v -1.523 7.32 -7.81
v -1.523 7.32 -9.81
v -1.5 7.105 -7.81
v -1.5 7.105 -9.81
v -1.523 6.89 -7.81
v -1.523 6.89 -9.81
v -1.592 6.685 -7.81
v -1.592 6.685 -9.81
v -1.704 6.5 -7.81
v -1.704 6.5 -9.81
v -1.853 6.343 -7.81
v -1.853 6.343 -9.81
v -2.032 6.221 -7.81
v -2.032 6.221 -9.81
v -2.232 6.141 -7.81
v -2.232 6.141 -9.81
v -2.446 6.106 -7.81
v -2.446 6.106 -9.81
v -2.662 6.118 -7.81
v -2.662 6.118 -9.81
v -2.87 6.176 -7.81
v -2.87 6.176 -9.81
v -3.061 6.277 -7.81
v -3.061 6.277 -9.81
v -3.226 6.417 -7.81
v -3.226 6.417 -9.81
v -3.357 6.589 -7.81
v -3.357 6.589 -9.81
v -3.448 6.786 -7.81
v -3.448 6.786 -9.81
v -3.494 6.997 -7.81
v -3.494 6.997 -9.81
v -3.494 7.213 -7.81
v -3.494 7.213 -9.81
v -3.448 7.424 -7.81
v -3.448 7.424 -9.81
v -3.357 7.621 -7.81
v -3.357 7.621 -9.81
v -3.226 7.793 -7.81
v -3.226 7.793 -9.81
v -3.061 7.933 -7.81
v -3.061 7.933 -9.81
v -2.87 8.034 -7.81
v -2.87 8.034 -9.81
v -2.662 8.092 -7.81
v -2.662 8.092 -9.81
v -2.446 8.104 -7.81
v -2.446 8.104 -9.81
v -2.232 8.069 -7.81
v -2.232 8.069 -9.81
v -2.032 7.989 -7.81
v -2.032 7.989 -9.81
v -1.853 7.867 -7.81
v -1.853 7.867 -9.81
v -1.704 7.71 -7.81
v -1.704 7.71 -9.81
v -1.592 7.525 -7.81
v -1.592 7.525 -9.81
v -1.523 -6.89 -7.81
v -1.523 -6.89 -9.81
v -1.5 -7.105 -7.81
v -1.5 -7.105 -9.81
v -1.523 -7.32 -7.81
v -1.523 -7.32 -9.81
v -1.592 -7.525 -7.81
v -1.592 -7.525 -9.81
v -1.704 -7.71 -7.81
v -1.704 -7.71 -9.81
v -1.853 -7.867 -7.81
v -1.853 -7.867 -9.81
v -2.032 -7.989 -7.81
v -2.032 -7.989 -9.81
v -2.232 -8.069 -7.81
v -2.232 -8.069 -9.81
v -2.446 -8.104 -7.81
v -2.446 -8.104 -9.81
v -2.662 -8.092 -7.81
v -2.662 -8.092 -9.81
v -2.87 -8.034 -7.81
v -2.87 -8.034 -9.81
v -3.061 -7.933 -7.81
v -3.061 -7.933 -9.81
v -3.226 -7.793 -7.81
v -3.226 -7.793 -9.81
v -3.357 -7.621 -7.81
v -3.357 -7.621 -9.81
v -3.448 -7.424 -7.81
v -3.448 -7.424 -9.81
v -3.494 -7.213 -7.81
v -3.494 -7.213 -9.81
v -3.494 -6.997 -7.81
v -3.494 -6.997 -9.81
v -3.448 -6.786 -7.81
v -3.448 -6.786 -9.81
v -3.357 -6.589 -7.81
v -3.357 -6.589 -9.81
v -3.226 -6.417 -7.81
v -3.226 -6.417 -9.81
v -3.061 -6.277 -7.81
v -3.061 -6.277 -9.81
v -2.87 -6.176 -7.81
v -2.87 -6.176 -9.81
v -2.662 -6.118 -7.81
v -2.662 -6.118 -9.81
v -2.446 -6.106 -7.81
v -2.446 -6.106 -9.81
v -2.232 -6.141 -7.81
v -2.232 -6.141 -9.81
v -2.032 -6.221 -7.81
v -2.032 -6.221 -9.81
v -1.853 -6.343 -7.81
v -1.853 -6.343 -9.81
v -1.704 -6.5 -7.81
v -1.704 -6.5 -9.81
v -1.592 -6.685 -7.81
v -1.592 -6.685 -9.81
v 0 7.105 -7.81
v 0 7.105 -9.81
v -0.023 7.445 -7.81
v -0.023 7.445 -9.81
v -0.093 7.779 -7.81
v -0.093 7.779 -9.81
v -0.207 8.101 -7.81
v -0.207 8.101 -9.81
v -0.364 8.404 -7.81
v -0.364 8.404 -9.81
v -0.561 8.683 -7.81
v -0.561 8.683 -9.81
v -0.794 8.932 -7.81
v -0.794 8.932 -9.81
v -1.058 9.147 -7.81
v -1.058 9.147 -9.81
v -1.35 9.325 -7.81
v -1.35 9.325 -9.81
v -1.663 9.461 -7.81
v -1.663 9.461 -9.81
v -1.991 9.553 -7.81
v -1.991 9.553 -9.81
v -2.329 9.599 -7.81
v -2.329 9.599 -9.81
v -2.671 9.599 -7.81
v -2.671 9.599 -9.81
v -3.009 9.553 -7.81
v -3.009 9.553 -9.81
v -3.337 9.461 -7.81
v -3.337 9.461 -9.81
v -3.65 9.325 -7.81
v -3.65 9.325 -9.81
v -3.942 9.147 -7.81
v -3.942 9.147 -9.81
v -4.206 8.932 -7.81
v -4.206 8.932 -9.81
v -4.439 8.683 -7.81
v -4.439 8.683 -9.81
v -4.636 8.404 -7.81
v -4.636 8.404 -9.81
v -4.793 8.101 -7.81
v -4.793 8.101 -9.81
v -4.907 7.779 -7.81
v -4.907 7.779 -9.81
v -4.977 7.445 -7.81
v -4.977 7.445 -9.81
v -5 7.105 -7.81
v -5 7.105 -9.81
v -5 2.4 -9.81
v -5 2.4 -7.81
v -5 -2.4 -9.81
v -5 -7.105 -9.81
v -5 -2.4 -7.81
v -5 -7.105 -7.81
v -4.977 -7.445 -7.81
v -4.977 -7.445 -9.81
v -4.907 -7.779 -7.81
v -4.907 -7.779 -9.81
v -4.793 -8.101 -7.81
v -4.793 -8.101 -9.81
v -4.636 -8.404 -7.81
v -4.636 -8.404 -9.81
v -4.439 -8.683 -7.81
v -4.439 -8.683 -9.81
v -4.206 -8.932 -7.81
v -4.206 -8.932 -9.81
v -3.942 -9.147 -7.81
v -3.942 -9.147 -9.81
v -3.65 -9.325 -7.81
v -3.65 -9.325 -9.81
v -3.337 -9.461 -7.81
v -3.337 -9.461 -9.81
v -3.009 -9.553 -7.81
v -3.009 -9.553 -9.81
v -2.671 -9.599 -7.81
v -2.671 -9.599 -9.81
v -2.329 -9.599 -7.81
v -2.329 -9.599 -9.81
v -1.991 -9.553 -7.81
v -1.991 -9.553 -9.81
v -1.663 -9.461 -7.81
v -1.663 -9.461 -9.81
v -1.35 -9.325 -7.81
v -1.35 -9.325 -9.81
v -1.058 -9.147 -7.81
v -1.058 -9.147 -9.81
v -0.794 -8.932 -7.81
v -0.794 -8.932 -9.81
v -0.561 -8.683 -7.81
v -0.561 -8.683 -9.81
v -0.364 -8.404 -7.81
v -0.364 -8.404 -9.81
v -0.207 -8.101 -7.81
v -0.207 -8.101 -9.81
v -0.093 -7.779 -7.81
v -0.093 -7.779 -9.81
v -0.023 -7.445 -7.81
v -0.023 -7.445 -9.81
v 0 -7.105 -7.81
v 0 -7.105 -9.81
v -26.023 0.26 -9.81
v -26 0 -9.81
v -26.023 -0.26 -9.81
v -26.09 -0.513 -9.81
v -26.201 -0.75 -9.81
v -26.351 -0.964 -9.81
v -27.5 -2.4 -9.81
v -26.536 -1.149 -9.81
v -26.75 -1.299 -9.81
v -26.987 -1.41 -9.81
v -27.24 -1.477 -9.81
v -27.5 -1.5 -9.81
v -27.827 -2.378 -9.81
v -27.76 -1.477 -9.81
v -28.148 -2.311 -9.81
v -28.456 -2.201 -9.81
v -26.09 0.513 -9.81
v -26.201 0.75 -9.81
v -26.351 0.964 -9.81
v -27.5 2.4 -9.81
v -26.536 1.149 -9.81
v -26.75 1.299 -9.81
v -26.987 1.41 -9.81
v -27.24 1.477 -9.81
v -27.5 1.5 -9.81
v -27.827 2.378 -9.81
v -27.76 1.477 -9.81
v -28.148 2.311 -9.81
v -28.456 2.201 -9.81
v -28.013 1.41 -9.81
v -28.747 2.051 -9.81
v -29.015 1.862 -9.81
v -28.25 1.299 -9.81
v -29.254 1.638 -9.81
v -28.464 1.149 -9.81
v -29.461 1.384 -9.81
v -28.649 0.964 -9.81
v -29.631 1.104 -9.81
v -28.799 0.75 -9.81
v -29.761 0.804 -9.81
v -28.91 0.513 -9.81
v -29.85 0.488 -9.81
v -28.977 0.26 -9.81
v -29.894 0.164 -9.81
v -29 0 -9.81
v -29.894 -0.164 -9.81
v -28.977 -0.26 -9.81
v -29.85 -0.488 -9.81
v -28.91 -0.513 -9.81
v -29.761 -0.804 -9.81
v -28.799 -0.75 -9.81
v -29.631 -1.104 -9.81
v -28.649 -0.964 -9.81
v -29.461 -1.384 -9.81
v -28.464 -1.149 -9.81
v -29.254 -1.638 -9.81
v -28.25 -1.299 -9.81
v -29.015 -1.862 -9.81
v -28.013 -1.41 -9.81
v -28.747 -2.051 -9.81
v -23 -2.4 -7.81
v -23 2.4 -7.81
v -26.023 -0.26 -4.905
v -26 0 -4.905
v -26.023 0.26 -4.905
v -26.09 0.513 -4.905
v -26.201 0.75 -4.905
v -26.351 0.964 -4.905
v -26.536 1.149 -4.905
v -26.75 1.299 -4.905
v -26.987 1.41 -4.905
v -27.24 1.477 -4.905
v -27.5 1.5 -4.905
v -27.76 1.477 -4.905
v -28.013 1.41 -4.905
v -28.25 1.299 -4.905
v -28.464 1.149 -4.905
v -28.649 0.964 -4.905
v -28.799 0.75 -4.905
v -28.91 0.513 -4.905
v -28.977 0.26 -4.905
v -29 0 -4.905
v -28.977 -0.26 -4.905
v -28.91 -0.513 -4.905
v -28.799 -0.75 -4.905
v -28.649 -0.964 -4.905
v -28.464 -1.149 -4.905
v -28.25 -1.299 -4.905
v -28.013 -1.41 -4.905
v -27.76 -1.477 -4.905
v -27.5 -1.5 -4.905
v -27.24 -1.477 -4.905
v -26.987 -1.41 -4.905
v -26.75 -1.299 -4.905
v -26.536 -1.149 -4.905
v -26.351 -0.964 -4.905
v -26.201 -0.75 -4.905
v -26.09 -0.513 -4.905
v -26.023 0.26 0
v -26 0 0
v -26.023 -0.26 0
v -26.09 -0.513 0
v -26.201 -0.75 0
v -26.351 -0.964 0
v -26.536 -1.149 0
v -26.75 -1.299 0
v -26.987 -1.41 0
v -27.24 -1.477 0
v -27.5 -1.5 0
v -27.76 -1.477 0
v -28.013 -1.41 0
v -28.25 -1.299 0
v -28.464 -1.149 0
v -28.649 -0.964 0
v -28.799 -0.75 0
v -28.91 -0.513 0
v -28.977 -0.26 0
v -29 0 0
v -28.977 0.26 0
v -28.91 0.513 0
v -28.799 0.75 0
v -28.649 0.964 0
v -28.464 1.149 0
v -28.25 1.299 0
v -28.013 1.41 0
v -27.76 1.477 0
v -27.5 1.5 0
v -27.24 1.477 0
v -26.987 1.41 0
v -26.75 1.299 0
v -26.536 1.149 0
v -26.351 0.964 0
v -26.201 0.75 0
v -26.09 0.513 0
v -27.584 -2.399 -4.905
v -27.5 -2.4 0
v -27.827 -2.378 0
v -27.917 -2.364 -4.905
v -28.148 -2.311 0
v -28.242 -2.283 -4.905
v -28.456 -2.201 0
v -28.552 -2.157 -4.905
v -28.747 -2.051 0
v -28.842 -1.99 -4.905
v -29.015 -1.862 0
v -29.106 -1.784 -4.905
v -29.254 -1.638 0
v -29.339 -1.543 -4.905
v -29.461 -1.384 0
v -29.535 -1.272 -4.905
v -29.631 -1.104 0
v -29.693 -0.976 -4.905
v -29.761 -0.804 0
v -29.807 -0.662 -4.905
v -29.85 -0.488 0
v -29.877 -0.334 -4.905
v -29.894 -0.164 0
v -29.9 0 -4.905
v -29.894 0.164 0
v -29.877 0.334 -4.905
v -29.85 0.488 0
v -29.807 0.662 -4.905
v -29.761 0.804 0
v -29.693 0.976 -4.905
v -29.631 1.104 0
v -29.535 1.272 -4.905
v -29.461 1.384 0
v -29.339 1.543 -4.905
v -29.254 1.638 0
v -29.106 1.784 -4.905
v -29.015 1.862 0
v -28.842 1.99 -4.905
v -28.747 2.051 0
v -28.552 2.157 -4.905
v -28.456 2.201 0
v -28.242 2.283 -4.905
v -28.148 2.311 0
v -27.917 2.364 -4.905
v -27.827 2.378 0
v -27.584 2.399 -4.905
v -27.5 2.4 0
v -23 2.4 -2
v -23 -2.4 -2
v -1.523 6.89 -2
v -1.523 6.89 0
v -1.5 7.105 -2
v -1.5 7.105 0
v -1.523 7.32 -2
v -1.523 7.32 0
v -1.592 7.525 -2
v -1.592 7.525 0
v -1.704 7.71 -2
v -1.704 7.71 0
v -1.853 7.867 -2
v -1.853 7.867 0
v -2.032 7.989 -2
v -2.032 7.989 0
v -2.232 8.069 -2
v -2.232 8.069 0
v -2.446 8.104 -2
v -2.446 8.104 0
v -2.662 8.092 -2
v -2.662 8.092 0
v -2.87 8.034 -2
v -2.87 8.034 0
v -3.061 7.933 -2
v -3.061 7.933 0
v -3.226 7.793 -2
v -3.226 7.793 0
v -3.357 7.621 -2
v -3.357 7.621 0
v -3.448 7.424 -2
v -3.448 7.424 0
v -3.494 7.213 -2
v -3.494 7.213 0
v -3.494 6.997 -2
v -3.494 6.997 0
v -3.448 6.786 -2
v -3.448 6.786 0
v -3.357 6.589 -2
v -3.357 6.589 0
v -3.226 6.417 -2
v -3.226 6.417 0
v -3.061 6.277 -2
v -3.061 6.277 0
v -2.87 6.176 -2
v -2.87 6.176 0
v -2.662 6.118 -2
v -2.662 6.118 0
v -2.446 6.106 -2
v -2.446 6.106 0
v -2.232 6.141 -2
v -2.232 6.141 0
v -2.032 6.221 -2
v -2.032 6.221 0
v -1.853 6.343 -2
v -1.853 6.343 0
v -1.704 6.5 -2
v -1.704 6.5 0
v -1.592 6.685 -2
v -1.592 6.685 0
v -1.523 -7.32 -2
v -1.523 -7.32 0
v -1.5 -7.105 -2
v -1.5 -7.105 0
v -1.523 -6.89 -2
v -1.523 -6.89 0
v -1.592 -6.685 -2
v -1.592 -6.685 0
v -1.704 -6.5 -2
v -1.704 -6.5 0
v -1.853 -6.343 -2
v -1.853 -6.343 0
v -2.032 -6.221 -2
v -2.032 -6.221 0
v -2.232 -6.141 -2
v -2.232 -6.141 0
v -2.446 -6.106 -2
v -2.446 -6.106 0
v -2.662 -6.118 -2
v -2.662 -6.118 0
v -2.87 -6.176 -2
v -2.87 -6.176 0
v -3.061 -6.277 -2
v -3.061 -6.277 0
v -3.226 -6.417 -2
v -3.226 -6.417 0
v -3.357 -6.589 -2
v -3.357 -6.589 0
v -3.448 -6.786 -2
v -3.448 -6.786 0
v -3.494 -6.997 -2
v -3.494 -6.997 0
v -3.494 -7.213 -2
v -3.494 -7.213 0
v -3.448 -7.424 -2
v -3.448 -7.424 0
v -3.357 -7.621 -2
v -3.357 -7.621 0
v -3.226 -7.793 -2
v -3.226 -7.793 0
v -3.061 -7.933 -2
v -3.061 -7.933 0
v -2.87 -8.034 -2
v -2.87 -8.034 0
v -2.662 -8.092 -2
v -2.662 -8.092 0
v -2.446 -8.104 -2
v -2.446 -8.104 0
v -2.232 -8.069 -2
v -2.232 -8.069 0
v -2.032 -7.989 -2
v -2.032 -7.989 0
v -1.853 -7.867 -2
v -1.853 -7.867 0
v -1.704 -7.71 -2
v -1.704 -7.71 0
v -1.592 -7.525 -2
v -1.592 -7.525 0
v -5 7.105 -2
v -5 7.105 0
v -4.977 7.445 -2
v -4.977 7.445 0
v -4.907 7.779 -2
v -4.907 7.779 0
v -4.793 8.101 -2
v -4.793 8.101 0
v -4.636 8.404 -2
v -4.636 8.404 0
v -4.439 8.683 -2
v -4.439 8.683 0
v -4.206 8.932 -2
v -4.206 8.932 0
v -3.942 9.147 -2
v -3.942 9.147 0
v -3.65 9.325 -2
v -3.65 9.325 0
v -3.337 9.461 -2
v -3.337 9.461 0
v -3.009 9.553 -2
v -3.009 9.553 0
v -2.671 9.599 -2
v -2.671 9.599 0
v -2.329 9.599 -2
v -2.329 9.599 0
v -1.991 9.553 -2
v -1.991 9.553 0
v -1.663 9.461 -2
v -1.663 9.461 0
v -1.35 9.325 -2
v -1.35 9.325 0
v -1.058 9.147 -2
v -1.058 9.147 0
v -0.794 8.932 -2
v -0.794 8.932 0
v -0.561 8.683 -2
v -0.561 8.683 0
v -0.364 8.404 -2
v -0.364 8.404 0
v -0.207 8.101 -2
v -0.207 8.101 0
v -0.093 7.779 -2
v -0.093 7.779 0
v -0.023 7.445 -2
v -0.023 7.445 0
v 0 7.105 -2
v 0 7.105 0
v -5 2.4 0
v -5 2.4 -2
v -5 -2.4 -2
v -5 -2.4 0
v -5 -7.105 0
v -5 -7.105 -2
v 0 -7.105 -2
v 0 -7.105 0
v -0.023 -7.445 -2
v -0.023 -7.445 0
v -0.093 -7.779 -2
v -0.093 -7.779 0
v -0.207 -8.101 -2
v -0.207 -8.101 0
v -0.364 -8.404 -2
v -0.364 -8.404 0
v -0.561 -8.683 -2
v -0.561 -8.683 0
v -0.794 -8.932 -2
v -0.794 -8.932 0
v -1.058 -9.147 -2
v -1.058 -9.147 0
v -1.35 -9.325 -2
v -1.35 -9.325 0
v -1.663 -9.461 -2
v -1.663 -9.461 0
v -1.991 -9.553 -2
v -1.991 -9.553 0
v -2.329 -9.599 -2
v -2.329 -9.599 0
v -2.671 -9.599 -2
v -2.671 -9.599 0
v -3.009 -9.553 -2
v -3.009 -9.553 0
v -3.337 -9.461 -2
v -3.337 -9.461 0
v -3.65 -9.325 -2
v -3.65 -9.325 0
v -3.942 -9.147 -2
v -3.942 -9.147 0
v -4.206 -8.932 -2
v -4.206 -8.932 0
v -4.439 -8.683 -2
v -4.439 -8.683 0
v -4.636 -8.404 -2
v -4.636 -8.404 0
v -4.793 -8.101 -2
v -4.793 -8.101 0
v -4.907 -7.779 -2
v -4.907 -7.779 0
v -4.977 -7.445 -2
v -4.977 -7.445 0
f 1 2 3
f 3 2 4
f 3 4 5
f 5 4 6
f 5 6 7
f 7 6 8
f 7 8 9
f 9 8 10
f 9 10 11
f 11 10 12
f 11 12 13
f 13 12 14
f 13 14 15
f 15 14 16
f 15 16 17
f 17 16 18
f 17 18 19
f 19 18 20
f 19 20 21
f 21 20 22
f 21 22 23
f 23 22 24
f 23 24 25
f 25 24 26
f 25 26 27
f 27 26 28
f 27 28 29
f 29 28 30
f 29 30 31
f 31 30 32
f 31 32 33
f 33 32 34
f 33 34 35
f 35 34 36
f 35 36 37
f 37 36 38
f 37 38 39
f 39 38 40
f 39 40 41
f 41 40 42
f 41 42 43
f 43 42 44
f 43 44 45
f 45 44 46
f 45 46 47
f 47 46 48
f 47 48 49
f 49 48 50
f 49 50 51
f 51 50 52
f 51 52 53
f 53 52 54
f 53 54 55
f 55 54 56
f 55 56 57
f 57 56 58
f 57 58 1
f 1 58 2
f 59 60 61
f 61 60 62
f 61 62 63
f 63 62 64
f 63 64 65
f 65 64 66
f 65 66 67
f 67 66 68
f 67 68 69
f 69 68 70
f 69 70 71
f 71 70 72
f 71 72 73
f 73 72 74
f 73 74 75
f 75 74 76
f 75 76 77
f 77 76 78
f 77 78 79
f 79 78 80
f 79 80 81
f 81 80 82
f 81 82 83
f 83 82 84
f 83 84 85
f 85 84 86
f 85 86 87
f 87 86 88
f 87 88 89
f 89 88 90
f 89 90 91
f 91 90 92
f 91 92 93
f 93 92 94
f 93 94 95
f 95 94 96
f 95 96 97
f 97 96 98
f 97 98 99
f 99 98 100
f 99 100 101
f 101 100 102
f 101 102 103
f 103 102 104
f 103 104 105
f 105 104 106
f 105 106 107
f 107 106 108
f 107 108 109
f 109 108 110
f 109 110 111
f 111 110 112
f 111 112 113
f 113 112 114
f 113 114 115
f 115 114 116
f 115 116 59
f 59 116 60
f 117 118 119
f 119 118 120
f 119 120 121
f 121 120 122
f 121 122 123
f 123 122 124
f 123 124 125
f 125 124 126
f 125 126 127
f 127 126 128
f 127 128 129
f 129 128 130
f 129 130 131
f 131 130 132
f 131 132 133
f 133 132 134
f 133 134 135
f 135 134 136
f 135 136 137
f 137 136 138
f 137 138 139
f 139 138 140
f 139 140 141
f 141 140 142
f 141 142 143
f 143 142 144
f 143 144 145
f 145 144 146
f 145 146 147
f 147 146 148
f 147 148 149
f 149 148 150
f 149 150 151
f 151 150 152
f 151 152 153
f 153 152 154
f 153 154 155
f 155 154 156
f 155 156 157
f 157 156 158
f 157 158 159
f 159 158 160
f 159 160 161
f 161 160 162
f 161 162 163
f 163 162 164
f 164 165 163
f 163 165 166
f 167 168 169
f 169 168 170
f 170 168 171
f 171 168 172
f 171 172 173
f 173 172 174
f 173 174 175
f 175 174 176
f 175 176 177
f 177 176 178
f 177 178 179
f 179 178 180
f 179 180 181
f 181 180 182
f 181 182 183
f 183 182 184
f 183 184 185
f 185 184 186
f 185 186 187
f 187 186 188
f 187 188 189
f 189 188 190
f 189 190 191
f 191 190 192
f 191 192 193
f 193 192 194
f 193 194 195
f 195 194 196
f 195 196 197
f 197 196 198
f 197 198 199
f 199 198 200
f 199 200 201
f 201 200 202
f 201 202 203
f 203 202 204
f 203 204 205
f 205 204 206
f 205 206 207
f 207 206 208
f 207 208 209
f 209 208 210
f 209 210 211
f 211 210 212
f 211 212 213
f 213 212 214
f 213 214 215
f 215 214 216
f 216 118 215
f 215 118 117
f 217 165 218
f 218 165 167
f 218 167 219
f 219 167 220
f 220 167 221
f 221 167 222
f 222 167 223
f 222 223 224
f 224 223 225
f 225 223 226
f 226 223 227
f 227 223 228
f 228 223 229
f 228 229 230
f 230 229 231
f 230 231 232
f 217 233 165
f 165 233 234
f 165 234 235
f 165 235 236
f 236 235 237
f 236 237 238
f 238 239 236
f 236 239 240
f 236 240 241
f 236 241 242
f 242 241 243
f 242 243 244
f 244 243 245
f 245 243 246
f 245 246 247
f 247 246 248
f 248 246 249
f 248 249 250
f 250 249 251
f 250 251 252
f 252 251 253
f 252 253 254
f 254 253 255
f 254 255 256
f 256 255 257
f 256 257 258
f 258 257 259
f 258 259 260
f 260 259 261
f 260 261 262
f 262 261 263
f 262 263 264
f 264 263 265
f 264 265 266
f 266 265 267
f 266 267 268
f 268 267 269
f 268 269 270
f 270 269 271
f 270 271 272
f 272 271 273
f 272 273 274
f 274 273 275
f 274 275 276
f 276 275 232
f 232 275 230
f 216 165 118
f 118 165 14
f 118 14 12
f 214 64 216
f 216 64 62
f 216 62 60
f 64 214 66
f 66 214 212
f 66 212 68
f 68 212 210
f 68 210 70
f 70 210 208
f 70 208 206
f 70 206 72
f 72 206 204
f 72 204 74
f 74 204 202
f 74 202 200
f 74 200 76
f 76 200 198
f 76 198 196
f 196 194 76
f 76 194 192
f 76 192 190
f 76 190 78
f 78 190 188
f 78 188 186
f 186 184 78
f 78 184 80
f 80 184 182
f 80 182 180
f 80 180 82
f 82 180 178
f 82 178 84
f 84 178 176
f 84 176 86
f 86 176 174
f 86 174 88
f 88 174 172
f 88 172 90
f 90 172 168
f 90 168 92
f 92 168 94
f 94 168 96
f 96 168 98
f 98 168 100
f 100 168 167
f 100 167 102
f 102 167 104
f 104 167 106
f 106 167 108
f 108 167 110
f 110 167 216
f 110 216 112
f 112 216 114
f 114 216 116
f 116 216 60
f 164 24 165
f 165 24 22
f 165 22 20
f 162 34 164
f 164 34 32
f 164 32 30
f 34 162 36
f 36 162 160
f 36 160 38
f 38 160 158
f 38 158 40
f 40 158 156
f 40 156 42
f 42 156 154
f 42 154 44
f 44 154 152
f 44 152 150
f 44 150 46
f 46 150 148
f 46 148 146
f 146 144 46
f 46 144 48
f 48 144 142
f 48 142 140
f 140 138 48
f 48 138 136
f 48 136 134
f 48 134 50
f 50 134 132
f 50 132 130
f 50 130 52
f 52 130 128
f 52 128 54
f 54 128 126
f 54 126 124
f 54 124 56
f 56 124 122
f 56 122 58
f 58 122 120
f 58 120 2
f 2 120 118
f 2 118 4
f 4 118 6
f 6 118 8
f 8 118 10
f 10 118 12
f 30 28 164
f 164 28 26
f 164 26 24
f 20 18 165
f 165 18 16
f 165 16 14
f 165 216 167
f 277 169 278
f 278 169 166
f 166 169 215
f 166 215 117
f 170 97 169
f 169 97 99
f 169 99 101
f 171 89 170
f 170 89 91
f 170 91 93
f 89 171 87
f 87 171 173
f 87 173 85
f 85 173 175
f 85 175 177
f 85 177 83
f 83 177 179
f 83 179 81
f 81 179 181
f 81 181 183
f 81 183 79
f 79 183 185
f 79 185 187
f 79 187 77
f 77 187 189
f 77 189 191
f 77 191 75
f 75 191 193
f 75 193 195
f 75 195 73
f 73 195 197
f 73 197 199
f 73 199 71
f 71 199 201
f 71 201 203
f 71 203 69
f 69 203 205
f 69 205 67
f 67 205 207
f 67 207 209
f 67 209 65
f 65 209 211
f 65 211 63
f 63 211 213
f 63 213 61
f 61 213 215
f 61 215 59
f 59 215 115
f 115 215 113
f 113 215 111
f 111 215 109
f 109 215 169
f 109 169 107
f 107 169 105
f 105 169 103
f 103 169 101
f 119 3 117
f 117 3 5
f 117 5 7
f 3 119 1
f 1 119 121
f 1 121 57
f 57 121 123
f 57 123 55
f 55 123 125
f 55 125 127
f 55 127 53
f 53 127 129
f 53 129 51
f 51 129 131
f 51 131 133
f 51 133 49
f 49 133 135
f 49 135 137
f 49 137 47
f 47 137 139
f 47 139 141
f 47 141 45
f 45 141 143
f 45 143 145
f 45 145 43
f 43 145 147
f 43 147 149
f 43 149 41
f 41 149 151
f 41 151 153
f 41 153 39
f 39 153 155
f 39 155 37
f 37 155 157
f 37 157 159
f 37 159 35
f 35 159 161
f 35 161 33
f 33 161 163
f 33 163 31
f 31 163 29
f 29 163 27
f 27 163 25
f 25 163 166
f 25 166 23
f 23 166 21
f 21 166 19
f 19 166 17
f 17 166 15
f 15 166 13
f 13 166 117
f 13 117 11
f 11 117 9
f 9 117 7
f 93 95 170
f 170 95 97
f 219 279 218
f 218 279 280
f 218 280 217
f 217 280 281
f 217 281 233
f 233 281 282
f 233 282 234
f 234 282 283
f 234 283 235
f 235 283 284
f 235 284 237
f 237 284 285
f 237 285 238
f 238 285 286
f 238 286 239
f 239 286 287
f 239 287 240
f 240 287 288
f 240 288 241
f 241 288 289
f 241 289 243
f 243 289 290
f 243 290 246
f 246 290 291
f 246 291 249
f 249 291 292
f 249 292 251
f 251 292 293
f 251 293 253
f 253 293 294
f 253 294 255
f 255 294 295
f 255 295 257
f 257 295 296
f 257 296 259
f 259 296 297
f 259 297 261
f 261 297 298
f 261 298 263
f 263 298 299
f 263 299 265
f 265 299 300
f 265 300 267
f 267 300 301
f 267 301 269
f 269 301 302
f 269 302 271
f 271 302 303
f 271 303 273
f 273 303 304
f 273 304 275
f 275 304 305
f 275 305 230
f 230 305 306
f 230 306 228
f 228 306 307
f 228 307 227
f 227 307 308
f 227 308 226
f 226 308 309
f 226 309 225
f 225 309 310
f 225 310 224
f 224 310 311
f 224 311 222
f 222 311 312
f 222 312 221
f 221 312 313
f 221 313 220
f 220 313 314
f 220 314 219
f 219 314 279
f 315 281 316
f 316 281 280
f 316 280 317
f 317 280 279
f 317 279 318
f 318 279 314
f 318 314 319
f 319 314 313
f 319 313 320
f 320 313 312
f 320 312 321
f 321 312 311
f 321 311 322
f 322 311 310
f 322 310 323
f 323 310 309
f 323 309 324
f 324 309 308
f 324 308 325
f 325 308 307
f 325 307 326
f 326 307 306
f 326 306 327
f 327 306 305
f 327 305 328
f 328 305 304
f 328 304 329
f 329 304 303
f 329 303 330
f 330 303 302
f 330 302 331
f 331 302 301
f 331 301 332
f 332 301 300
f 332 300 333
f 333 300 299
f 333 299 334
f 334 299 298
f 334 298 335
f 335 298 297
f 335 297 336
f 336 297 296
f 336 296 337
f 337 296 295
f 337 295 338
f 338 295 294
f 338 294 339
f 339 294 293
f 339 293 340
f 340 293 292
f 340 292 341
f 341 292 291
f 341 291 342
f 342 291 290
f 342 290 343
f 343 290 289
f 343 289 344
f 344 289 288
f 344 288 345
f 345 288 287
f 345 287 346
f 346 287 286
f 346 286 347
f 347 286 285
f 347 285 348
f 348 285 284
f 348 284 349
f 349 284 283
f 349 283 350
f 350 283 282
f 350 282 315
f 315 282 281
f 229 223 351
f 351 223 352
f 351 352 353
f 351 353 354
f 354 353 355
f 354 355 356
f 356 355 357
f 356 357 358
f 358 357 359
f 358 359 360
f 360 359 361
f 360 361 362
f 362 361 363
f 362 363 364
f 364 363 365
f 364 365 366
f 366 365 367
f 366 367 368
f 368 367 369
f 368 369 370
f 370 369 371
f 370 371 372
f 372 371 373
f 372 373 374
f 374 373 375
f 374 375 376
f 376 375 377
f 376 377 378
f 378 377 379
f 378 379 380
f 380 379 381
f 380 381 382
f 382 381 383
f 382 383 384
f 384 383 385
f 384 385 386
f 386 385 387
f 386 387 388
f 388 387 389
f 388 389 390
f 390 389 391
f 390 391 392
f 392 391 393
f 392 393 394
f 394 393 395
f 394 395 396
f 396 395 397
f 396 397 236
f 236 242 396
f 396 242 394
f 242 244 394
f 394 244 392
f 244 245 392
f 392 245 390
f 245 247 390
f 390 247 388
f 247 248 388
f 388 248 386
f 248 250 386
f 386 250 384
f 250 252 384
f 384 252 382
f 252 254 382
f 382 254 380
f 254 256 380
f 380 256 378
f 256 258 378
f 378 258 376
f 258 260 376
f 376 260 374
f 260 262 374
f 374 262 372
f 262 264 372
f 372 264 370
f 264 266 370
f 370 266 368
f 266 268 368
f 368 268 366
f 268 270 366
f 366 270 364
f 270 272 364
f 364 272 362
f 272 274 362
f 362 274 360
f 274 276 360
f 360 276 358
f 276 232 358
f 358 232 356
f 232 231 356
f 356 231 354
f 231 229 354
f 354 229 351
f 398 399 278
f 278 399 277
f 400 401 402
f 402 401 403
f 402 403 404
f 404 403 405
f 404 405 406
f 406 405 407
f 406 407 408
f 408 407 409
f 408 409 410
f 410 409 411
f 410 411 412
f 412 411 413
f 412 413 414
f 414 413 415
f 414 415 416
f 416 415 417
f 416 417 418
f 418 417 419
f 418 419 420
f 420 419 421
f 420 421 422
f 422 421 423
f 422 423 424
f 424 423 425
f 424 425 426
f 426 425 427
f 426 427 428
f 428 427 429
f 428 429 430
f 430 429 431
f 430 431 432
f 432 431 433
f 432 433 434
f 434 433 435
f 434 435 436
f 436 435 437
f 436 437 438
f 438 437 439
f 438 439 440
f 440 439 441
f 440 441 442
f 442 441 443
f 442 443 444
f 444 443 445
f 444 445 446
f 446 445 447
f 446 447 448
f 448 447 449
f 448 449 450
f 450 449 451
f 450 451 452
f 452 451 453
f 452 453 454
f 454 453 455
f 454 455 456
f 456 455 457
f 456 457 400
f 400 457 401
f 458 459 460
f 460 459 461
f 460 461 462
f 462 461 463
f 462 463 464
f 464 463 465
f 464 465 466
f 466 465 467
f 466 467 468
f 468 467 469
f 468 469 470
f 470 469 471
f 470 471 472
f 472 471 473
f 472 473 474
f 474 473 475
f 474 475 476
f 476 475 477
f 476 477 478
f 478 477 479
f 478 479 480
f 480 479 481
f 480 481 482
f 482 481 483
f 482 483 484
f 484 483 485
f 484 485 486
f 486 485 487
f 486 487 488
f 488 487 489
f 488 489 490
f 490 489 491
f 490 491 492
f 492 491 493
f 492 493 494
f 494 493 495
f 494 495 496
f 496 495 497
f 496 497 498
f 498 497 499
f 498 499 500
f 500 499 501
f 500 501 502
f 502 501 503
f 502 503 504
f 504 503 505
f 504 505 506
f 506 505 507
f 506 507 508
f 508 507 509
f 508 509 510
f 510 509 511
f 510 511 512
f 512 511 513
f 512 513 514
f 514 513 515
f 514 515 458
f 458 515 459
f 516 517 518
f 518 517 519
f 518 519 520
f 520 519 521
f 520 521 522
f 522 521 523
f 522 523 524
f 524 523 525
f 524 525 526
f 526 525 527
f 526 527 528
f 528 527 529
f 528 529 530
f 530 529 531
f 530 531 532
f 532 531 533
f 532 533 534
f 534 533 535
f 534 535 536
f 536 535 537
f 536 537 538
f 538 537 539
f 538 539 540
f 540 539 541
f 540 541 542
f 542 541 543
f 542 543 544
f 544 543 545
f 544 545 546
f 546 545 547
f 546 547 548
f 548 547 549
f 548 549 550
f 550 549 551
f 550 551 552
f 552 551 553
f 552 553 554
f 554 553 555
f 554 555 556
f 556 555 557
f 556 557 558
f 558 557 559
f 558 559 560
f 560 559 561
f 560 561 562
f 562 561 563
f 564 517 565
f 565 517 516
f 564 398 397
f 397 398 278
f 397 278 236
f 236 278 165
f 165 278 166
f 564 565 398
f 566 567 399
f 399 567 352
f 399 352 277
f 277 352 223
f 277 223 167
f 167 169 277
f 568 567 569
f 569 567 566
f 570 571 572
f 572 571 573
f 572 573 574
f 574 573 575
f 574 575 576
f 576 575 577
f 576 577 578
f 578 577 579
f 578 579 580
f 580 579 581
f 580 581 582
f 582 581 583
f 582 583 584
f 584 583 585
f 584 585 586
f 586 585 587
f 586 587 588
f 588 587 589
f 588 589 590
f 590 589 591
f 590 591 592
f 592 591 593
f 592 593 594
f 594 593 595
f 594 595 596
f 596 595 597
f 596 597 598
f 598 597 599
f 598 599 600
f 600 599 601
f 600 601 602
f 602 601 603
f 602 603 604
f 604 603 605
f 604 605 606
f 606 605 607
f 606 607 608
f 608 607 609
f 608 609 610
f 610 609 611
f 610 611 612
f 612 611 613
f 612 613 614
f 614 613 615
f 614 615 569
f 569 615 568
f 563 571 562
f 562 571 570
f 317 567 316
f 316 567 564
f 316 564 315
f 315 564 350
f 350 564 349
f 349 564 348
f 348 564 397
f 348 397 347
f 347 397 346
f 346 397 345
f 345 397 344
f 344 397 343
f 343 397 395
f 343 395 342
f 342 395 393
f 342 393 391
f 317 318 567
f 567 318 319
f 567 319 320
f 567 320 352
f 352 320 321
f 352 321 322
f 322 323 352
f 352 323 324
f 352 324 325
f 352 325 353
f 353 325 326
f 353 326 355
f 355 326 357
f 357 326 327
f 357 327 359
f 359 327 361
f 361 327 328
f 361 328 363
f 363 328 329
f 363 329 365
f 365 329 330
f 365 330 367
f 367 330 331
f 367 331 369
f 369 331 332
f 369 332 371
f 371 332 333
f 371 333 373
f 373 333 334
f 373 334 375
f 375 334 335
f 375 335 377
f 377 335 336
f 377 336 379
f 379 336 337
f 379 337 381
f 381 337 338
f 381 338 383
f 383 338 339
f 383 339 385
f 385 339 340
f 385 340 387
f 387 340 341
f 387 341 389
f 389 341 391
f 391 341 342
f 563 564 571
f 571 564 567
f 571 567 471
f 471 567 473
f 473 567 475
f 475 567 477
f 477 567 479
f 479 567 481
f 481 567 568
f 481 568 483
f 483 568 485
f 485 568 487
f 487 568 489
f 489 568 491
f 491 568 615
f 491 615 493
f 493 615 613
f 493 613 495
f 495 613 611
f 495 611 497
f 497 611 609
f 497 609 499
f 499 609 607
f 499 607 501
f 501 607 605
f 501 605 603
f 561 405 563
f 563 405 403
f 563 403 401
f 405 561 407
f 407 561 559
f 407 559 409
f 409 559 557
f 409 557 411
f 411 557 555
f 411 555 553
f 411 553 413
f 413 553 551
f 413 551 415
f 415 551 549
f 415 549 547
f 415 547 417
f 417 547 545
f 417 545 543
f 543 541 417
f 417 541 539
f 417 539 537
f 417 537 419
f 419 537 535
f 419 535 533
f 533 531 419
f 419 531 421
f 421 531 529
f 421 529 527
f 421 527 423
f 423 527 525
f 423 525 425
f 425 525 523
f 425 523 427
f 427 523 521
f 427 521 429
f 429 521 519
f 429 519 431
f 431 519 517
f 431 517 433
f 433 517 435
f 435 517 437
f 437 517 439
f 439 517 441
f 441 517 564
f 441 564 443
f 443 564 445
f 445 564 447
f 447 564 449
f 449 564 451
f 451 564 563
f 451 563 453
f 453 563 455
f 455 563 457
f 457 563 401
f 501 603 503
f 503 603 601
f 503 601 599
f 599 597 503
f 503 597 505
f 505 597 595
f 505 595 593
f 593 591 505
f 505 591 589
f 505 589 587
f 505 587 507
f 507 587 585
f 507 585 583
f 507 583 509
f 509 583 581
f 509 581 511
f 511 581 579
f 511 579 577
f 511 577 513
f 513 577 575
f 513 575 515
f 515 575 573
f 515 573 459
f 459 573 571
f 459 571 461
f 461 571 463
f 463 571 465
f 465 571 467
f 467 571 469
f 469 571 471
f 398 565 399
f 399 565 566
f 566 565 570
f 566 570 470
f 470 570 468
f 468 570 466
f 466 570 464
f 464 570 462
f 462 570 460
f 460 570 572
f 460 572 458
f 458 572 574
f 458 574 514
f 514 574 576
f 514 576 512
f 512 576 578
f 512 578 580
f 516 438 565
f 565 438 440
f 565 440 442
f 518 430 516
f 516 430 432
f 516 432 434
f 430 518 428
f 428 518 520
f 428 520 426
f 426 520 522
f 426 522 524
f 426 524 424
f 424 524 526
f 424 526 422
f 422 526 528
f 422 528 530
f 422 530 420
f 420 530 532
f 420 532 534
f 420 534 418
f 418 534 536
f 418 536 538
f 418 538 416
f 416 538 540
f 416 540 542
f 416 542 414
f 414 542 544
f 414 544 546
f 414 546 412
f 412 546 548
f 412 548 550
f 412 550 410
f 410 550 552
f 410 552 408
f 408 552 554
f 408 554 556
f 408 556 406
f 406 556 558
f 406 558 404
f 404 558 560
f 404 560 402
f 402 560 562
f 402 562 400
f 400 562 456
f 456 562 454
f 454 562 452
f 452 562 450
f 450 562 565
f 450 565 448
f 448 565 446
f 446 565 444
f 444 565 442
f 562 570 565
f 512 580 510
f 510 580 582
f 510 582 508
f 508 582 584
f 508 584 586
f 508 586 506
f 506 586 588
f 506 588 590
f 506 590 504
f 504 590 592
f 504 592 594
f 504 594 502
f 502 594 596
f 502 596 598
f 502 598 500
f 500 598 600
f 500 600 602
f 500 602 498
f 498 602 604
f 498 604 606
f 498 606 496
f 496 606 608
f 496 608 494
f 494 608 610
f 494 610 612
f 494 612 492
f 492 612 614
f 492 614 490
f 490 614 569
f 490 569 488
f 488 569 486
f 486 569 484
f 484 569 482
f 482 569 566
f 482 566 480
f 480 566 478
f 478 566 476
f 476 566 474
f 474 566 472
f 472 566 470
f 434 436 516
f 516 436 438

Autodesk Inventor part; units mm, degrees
ref_plane "YZ Plane" through (0, 0, 0) normal (1, 0, 0) x (0, 1, 0)
ref_plane "XZ Plane" through (0, 0, 0) normal (0, 1, 0) x (-1, 0, 0)
ref_plane "XY Plane" through (0, 0, 0) normal (0, 0, 1) x (1, 0, 0)
sketch "Sketch1" plane through (0, 0, 0) normal (0, 0, 1) x (1, 0, 0)
  line L0 (0, 0) -> (0, 7.105)
  line L1 (0, 0) -> (0, -7.105)
  line L2 (0, -7.105) -> (-5, -7.105)
  line L3 (-5, -7.105) -> (-5, 7.105)
  line L4 (0, 7.105) -> (-5, 7.105)
  circle A0 centre (-2.5, -7.105) radius 2.5
  circle A1 centre (-2.5, 7.105) radius 2.5
  circle A2 centre (-2.5, -7.105) radius 1
  circle A3 centre (-2.5, 7.105) radius 1
  line L5 (-5, 0) -> (-5, 2.4)
  line L6 (-5, 2.4) -> (-25.5, 2.4)
  line L7 (-25.5, 2.4) -> (-25.5, -2.4)
  line L8 (-25.5, -2.4) -> (-5, -2.4)
  dimension "d0" = 7.105
  dimension "d1" = 7.105
  dimension "d2" = 5
  dimension "d3" = 5
  dimension "d4" = 5
  dimension "d5" = 2
  dimension "d6" = 2
  dimension "d7" = 2.4
  dimension "d8" = 20.5
  dimension "d9" = 4.8
extrude "Extrusion1" add sketch "Sketch1" against normal blind 2 contours L1 A0 L3 A1 L0 | A1 L4 A3 | L4 A3 A1 | A0 L2 A2 | L2 A2 A0 | L3 L8 L7 L6
sketch "Sketch2" plane through (0, 0, -2) normal (0, 0, -1) x (-1, 0, 0)
  line L0 (0, 7.105) -> (0, -7.105) projected
  arc A0 (0, -7.105) -> (5, -7.105) centre (2.5, -7.105) ccw projected
  line L1 (5, -7.105) -> (5, -2.4) projected
  line L2 (5, -2.4) -> (25.5, -2.4) projected
  line L3 (25.5, -2.4) -> (25.5, 2.4) projected
  line L4 (25.5, 2.4) -> (5, 2.4) projected
  line L5 (5, 2.4) -> (5, 7.105) projected
  arc A1 (5, 7.105) -> (0, 7.105) centre (2.5, 7.105) ccw projected
  circle A2 centre (2.5, -7.105) radius 1 projected
  circle A3 centre (2.5, 7.105) radius 1 projected
  line L6 (23, 2.4) -> (25.5, 2.4)
  line L7 (25.5, 2.4) -> (25.5, -2.4)
  line L8 (25.5, -2.4) -> (23, -2.4)
  line L9 (23, -2.4) -> (23, 2.4)
  point P0 (0, 0)
  point P1 (23, -2.4)
  dimension "d26" = 2.5
extrude "Extrusion2" add sketch "Sketch2" along normal blind 2.905 contours L4 L3 L2 L9
sketch "Sketch4" plane through (0, 0, 0) normal (0, 0, 1) x (1, 0, 0)
  arc A0 (0, 7.105) -> (-5, 7.105) centre (-2.5, 7.105) ccw projected
  line L0 (-5, 7.105) -> (-5, 2.4) projected
  line L1 (-5, 2.4) -> (-25.5, 2.4) projected
  line L2 (-25.5, 2.4) -> (-25.5, -2.4) projected
  line L3 (-25.5, -2.4) -> (-5, -2.4) projected
  line L4 (-5, -2.4) -> (-5, -7.105) projected
  arc A1 (-5, -7.105) -> (0, -7.105) centre (-2.5, -7.105) ccw projected
  line L5 (0, -7.105) -> (0, 7.105) projected
  circle A2 centre (-2.5, -7.105) radius 1 projected
  circle A3 centre (-2.5, 7.105) radius 1 projected
  line L6 (-25.5, 0) -> (-27.5, 0)
  circle A4 centre (-27.5, 0) radius 1.5
  circle A5 centre (-27.5, 0) radius 2.4
  line L7 (-25.5, -2.4) -> (-27.5, -2.4)
  line L8 (-25.5, 2.4) -> (-27.5, 2.4)
  point P0 (0, 0)
  dimension "d21" = 2
  dimension "d22" = 3
  dimension "d23" = 4.8
extrude "Extrusion4" add sketch "Sketch4" against normal up to surface (4.905 mm away) contours L2 A5 L8 | L2 A5 | L7 A5 L2 picked at (-25.6812, 0.5619)
mirror "Mirror2" about plane through (-24.25, 0, -4.905) normal (0, 0, -1) of "Extrusion1", "Extrusion2", "Extrusion4"
equation "\"d1\" = d0"
equation "\"d3\" = d2"
equation "\"d4\" = d2"
equation "\"d6\" = d5"
equation "\"d9\" = 2 * d7"
properties part number "PistonPivotTop"
